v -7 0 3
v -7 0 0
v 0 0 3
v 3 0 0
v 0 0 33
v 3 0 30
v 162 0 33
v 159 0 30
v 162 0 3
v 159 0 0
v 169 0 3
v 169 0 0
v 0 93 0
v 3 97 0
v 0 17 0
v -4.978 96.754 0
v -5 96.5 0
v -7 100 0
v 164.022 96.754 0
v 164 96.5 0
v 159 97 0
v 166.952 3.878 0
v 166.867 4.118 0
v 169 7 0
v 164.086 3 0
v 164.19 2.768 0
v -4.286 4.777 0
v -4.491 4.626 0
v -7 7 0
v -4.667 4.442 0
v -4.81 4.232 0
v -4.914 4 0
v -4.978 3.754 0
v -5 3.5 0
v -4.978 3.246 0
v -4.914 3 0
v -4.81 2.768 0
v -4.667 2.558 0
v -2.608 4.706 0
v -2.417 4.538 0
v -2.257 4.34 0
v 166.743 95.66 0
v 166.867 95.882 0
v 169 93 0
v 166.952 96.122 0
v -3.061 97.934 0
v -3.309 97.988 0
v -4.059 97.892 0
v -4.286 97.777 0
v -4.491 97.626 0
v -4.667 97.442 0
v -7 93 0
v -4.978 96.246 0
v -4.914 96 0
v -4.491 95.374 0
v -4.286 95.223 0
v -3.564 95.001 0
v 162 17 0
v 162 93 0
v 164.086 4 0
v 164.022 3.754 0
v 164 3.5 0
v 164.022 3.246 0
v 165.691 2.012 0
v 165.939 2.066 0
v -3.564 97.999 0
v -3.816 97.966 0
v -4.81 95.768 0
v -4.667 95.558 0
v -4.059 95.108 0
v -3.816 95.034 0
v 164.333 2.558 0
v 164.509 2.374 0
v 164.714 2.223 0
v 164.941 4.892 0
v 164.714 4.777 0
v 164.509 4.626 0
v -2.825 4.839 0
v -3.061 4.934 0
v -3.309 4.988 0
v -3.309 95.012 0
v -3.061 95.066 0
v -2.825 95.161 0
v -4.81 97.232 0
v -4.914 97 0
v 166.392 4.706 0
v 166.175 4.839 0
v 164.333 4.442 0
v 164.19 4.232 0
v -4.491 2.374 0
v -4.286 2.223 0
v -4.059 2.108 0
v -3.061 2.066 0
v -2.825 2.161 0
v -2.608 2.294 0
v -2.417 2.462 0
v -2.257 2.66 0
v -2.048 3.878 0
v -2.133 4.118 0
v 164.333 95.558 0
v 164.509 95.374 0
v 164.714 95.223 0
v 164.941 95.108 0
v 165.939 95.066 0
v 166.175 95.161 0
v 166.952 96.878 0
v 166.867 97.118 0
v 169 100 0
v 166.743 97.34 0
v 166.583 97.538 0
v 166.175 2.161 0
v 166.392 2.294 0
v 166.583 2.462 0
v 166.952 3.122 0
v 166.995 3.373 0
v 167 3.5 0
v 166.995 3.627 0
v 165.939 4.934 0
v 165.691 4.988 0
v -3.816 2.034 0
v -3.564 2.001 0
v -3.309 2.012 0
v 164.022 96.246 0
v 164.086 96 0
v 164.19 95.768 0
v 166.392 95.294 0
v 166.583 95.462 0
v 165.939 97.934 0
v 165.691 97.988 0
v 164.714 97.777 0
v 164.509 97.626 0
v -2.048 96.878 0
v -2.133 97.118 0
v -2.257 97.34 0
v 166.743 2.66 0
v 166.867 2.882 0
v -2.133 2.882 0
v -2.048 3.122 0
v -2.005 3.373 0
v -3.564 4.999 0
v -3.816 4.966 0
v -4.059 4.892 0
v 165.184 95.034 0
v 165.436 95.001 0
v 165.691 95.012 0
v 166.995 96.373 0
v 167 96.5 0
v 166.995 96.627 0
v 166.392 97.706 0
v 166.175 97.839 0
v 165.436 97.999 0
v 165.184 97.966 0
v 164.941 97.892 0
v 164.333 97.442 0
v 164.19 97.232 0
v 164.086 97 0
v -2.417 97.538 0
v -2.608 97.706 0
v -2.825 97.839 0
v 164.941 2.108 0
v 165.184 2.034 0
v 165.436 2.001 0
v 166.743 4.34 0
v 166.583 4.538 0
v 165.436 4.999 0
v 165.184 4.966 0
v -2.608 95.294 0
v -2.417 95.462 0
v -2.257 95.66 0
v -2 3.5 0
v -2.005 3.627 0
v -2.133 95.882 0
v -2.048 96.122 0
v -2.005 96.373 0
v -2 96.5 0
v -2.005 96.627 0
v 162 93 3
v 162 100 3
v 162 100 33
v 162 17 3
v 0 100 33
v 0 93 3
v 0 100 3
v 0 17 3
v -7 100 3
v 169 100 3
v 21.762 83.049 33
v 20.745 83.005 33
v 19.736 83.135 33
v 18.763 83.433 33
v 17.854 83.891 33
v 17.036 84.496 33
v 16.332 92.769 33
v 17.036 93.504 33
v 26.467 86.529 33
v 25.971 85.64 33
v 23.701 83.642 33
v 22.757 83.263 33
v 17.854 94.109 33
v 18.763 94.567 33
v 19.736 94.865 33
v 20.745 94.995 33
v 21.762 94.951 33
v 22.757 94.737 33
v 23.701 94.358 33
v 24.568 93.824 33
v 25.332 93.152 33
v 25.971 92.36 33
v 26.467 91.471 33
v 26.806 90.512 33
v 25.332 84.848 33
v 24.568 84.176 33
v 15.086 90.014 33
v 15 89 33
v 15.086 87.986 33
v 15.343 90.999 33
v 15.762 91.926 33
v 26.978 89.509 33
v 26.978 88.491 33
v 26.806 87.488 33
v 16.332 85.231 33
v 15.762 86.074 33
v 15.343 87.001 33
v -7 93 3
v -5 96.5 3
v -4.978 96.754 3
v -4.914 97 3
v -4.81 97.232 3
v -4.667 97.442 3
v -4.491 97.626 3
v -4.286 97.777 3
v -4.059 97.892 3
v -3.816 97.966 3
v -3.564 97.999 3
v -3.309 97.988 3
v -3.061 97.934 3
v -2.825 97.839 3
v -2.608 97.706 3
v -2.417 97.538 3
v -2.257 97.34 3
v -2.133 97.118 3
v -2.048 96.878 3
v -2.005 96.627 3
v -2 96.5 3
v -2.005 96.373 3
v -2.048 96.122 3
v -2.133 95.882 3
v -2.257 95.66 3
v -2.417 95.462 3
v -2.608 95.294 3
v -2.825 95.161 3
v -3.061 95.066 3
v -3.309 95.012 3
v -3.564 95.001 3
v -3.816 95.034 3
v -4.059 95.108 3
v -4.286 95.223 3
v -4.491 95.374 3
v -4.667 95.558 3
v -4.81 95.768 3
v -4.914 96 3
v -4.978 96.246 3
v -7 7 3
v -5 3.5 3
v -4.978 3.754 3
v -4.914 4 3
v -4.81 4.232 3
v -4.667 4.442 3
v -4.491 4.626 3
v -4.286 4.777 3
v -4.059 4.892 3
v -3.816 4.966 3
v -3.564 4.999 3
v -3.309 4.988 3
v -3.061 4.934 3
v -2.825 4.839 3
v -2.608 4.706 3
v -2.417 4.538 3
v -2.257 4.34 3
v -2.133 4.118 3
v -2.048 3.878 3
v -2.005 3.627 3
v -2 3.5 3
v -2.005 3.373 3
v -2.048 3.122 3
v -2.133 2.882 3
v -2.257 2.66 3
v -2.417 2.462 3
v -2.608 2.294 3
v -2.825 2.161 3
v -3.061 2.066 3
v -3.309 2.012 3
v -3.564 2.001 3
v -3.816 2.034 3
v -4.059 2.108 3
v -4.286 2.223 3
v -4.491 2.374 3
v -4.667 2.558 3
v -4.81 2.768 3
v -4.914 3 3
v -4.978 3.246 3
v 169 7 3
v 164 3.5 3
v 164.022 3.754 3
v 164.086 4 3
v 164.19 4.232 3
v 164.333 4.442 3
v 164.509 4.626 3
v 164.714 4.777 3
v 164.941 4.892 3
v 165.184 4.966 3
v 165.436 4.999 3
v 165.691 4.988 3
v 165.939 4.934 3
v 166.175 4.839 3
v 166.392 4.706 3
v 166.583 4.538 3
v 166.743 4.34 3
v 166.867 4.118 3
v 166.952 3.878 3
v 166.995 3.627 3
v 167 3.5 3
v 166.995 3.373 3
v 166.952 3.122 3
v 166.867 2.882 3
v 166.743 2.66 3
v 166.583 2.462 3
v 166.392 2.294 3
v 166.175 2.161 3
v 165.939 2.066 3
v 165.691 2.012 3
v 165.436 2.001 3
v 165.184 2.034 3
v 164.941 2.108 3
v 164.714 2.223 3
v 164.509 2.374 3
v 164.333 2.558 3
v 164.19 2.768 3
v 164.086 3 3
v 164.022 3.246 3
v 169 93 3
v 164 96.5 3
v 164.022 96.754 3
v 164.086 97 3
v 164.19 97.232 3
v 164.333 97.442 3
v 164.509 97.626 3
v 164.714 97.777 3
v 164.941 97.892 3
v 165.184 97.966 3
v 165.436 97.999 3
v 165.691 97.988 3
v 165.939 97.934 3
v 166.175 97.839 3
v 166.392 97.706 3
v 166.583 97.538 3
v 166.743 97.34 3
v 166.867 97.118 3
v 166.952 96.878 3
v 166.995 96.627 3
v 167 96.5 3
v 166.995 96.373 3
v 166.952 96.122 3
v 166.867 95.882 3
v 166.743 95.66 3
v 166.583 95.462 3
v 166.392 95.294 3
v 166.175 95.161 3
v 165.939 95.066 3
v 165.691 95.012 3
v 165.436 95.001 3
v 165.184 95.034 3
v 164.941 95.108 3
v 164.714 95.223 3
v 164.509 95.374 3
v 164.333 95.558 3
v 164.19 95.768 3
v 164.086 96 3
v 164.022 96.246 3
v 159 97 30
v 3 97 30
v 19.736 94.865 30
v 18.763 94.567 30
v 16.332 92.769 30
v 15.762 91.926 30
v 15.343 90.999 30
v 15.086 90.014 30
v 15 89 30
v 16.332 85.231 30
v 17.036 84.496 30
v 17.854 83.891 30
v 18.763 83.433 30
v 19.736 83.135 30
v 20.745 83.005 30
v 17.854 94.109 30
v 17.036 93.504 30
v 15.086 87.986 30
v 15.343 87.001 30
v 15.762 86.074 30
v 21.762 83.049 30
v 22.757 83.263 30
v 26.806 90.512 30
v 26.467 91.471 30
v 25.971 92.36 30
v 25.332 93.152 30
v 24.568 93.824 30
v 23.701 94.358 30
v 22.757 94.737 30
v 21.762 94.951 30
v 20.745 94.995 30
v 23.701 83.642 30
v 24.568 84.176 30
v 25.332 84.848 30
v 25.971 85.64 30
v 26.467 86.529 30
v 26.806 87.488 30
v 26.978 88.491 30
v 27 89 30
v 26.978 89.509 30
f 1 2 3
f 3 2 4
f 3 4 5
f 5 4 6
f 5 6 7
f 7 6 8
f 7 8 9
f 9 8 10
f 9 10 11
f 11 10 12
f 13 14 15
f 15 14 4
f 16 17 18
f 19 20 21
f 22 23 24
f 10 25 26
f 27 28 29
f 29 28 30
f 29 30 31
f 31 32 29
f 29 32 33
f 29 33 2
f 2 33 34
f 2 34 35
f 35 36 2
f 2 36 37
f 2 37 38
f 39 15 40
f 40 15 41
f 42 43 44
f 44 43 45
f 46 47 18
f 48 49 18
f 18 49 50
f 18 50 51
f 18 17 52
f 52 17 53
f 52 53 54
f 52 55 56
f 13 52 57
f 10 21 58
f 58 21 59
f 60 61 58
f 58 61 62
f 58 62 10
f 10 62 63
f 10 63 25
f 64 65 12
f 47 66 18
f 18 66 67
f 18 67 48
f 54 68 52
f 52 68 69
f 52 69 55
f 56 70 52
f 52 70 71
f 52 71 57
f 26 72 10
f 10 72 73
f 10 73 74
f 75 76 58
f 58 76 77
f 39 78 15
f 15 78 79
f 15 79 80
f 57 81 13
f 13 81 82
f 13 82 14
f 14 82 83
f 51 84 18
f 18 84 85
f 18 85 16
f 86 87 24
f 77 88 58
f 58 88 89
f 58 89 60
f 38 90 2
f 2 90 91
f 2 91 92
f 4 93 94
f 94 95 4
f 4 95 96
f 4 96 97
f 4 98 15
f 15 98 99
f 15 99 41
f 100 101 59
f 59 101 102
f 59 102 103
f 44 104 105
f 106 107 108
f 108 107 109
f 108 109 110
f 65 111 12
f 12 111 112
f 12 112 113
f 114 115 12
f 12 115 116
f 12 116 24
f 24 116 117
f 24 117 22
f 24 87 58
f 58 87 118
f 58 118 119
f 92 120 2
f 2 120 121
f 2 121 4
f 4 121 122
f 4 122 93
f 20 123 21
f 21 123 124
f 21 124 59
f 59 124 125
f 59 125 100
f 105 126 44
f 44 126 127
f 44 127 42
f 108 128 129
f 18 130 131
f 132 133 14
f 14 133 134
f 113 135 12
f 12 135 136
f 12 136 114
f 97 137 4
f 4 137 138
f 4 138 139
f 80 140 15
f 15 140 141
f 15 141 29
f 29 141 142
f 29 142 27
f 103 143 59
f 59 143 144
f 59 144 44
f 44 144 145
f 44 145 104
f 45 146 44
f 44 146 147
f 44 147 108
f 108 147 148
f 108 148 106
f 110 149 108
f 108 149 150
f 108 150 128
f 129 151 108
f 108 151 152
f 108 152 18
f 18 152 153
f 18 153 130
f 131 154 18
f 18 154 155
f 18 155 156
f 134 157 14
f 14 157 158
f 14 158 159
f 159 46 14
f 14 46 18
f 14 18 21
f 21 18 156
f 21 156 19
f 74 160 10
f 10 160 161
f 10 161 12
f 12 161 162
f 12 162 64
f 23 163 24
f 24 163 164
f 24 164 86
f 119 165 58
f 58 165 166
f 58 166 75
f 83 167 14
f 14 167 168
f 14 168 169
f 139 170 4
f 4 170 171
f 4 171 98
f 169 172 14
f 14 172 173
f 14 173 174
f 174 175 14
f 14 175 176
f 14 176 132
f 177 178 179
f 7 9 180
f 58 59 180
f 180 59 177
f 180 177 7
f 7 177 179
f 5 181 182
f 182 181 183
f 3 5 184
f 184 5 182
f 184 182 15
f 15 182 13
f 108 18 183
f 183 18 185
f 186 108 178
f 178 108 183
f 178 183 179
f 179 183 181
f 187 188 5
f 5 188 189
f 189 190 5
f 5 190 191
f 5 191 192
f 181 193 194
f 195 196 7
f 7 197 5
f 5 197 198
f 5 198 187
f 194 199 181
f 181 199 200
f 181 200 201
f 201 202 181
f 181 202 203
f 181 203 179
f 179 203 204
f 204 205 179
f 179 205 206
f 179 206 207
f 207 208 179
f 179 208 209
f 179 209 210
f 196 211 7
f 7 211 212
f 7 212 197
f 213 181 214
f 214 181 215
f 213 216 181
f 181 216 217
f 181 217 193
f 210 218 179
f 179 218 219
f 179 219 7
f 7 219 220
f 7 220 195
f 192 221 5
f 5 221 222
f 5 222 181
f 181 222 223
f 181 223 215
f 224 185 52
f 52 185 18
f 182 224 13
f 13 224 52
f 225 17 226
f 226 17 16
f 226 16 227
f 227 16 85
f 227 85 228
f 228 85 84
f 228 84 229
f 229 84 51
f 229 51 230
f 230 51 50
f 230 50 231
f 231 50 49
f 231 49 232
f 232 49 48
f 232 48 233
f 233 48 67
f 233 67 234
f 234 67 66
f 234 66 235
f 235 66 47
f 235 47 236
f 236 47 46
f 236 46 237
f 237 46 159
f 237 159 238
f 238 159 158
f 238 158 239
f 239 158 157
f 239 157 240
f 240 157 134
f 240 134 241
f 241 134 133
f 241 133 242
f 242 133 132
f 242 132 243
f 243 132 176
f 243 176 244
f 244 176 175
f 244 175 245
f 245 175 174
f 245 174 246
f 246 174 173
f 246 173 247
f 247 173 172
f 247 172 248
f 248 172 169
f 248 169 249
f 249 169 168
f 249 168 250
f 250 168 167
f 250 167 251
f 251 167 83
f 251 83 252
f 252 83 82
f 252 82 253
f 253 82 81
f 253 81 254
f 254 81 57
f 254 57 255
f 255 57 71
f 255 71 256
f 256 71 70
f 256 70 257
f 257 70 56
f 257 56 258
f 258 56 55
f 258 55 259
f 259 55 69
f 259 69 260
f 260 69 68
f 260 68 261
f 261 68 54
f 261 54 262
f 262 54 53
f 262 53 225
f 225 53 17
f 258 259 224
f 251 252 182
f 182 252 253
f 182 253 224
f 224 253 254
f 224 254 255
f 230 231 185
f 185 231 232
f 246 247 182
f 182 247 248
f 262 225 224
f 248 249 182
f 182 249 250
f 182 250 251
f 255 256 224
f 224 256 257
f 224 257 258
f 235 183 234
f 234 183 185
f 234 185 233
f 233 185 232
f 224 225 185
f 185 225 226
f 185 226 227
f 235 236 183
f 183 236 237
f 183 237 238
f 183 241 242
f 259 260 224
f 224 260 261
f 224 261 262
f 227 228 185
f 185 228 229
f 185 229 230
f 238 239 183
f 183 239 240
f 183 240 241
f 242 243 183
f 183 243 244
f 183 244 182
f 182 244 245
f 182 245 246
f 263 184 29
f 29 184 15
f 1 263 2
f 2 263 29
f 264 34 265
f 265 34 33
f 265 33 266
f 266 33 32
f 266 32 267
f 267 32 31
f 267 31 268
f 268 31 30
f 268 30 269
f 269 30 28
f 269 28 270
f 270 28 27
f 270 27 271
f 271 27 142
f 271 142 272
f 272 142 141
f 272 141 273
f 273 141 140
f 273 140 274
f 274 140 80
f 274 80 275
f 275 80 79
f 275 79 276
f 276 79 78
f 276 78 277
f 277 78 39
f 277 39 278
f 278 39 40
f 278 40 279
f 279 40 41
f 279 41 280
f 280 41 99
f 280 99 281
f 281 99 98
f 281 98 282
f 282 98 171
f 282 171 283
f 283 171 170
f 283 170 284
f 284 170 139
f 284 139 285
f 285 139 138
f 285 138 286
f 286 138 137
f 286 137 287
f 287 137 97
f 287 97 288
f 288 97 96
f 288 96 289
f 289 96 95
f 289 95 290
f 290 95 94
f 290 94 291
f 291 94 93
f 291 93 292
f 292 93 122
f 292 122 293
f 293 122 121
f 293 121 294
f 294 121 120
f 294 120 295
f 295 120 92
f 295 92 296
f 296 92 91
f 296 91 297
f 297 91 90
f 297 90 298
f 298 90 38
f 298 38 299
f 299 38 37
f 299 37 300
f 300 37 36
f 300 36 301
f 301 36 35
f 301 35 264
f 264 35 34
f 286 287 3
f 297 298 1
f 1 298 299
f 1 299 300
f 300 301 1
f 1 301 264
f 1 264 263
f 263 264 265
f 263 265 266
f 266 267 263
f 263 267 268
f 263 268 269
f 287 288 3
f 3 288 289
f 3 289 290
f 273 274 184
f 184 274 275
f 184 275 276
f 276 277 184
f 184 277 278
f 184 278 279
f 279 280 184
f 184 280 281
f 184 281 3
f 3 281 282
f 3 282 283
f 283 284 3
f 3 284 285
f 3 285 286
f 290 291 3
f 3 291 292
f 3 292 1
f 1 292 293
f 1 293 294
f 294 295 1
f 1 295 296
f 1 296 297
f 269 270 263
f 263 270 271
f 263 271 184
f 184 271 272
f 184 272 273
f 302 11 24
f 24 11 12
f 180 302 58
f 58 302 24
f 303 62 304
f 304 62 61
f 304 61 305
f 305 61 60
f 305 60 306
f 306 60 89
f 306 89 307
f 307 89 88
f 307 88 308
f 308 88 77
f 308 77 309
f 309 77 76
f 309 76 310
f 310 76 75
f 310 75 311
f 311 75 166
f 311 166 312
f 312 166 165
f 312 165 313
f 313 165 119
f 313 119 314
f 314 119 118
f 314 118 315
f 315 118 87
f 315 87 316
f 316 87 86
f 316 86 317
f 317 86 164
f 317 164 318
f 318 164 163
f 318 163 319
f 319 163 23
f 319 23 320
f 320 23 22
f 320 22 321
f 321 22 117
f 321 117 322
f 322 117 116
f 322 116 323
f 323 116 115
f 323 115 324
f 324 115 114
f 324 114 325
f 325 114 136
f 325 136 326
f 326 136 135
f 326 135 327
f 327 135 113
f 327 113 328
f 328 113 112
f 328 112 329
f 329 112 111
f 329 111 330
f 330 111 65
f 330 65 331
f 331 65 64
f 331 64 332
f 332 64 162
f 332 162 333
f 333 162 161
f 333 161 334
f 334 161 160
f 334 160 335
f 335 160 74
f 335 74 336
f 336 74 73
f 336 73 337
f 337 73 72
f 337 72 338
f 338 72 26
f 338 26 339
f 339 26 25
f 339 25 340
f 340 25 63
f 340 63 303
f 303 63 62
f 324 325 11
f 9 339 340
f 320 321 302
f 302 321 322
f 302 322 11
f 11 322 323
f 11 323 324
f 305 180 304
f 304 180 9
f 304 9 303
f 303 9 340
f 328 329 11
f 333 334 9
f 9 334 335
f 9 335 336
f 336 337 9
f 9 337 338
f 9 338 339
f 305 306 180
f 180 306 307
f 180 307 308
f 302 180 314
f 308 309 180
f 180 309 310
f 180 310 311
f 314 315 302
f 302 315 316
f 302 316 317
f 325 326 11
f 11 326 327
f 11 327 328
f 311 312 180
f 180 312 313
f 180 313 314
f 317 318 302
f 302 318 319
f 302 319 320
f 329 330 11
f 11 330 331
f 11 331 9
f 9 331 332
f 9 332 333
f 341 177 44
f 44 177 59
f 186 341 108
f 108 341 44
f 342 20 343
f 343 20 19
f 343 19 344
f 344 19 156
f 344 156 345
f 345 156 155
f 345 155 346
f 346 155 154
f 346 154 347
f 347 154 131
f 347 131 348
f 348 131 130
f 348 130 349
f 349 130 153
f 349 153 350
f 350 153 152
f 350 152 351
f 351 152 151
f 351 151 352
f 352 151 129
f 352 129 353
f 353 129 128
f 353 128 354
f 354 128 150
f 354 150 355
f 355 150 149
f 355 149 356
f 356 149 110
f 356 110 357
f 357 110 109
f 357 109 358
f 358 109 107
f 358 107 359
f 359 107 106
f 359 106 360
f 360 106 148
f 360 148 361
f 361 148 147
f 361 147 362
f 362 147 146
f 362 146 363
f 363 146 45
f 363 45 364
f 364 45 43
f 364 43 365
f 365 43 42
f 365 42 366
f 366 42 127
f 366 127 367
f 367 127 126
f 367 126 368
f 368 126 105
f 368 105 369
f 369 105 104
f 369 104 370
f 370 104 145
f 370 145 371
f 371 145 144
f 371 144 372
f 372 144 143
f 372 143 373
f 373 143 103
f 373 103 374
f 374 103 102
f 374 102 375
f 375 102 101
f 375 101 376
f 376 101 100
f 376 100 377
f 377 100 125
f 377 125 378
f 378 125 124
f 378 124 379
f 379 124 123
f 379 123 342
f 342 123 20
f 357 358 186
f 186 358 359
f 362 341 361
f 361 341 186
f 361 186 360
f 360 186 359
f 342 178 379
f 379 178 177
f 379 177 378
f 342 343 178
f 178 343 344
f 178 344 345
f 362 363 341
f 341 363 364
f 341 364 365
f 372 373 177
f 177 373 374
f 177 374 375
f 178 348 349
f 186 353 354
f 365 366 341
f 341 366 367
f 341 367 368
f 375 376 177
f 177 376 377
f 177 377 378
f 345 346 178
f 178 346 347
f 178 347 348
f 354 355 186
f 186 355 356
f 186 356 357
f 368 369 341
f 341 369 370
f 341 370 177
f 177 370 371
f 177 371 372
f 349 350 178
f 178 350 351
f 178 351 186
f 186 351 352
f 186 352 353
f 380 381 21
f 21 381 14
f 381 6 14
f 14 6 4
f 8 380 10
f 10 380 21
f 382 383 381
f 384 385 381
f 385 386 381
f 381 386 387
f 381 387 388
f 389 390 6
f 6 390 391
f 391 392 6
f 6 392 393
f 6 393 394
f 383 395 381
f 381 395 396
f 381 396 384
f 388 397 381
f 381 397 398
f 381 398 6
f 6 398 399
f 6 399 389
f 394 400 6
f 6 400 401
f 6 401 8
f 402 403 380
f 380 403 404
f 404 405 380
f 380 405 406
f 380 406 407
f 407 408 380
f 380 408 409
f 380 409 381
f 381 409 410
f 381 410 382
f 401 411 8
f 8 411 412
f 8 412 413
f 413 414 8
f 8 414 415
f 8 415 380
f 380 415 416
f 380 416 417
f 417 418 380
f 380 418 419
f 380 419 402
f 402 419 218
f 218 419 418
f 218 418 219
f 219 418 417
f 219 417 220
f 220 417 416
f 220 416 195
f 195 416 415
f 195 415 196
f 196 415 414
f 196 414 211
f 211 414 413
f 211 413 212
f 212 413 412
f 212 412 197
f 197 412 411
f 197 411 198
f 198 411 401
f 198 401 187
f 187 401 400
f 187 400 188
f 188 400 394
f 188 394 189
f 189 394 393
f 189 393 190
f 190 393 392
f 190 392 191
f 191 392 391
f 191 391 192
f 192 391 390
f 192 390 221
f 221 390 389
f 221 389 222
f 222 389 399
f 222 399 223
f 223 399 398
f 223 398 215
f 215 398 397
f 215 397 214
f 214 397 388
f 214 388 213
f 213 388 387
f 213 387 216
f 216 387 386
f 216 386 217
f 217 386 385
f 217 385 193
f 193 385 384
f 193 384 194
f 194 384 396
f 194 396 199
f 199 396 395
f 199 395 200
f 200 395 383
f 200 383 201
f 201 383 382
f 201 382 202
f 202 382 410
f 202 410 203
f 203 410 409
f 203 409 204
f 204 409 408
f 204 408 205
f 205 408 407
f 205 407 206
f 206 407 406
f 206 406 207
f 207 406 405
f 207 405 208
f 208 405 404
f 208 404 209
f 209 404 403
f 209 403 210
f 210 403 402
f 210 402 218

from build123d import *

# Parameters (mm, degrees)
BOSS_EXTRUDE1_DEPTH = 33
SKETCH1_4_W         = 7
SKETCH1_4_H         = 7
SKETCH1_4_R         = 1.5
BOSS_EXTRUDE2_DEPTH = 3
SKETCH3_W           = 156
SKETCH3_H           = 97
CUT_EXTRUDE1_DEPTH  = 30
SKETCH3_4_R         = 6
CUT_EXTRUDE2_DEPTH  = 33


with BuildPart() as part:
    # Sketch1 → Boss-Extrude1 (new body)
    with BuildSketch(Plane.XY):
        Polygon((162, 93), (162, 100), (0, 100), (0, 93), (0, 17), (0, 7), (0, 0), (162, 0), (162, 7), (162, 17), align=None)
    extrude(amount=BOSS_EXTRUDE1_DEPTH)

    # Sketch1<4> → Boss-Extrude2 (add)
    # profile 1 of 4: a face of its own
    with BuildSketch(Plane.XY):
        with Locations((165.5, 96.5)):
            Rectangle(SKETCH1_4_W, SKETCH1_4_H)
        with Locations((165.5, 96.5)):
            Circle(SKETCH1_4_R, mode=Mode.SUBTRACT)
    # profile 2 of 4: a face of its own
    with BuildSketch(Plane.XY):
        with Locations((-3.5, 96.5)):
            Rectangle(SKETCH1_4_W, SKETCH1_4_H)
        with Locations((-3.5, 96.5)):
            Circle(SKETCH1_4_R, mode=Mode.SUBTRACT)
    # profile 3 of 4: a face of its own
    with BuildSketch(Plane.XY):
        Polygon((169, 7), (162, 17), (162, 0), (169, 0), align=None)
        with Locations((165.5, 3.5)):
            Circle(SKETCH1_4_R, mode=Mode.SUBTRACT)
    # profile 4 of 4: a face of its own
    with BuildSketch(Plane.XY):
        Polygon((0, 0), (0, 17), (-7, 7), (-7, 0), align=None)
        with Locations((-3.5, 3.5)):
            Circle(SKETCH1_4_R, mode=Mode.SUBTRACT)
    extrude(amount=BOSS_EXTRUDE2_DEPTH)

    # Sketch3 → Cut-Extrude1 (cut)
    with BuildSketch(Plane(origin=(0, 0, 0), x_dir=(-1, 0, 0), z_dir=(0, 0, -1))):
        with Locations((-81, 48.5)):
            Rectangle(SKETCH3_W, SKETCH3_H)
    extrude(amount=-CUT_EXTRUDE1_DEPTH, mode=Mode.SUBTRACT)

    # Sketch3<4> → Cut-Extrude2 (cut)
    with BuildSketch(Plane(origin=(0, 0, 0), x_dir=(-1, 0, 0), z_dir=(0, 0, -1))):
        with Locations((-21, 89)):
            Circle(SKETCH3_4_R)
    extrude(amount=-CUT_EXTRUDE2_DEPTH, mode=Mode.SUBTRACT)


solid = part.part
